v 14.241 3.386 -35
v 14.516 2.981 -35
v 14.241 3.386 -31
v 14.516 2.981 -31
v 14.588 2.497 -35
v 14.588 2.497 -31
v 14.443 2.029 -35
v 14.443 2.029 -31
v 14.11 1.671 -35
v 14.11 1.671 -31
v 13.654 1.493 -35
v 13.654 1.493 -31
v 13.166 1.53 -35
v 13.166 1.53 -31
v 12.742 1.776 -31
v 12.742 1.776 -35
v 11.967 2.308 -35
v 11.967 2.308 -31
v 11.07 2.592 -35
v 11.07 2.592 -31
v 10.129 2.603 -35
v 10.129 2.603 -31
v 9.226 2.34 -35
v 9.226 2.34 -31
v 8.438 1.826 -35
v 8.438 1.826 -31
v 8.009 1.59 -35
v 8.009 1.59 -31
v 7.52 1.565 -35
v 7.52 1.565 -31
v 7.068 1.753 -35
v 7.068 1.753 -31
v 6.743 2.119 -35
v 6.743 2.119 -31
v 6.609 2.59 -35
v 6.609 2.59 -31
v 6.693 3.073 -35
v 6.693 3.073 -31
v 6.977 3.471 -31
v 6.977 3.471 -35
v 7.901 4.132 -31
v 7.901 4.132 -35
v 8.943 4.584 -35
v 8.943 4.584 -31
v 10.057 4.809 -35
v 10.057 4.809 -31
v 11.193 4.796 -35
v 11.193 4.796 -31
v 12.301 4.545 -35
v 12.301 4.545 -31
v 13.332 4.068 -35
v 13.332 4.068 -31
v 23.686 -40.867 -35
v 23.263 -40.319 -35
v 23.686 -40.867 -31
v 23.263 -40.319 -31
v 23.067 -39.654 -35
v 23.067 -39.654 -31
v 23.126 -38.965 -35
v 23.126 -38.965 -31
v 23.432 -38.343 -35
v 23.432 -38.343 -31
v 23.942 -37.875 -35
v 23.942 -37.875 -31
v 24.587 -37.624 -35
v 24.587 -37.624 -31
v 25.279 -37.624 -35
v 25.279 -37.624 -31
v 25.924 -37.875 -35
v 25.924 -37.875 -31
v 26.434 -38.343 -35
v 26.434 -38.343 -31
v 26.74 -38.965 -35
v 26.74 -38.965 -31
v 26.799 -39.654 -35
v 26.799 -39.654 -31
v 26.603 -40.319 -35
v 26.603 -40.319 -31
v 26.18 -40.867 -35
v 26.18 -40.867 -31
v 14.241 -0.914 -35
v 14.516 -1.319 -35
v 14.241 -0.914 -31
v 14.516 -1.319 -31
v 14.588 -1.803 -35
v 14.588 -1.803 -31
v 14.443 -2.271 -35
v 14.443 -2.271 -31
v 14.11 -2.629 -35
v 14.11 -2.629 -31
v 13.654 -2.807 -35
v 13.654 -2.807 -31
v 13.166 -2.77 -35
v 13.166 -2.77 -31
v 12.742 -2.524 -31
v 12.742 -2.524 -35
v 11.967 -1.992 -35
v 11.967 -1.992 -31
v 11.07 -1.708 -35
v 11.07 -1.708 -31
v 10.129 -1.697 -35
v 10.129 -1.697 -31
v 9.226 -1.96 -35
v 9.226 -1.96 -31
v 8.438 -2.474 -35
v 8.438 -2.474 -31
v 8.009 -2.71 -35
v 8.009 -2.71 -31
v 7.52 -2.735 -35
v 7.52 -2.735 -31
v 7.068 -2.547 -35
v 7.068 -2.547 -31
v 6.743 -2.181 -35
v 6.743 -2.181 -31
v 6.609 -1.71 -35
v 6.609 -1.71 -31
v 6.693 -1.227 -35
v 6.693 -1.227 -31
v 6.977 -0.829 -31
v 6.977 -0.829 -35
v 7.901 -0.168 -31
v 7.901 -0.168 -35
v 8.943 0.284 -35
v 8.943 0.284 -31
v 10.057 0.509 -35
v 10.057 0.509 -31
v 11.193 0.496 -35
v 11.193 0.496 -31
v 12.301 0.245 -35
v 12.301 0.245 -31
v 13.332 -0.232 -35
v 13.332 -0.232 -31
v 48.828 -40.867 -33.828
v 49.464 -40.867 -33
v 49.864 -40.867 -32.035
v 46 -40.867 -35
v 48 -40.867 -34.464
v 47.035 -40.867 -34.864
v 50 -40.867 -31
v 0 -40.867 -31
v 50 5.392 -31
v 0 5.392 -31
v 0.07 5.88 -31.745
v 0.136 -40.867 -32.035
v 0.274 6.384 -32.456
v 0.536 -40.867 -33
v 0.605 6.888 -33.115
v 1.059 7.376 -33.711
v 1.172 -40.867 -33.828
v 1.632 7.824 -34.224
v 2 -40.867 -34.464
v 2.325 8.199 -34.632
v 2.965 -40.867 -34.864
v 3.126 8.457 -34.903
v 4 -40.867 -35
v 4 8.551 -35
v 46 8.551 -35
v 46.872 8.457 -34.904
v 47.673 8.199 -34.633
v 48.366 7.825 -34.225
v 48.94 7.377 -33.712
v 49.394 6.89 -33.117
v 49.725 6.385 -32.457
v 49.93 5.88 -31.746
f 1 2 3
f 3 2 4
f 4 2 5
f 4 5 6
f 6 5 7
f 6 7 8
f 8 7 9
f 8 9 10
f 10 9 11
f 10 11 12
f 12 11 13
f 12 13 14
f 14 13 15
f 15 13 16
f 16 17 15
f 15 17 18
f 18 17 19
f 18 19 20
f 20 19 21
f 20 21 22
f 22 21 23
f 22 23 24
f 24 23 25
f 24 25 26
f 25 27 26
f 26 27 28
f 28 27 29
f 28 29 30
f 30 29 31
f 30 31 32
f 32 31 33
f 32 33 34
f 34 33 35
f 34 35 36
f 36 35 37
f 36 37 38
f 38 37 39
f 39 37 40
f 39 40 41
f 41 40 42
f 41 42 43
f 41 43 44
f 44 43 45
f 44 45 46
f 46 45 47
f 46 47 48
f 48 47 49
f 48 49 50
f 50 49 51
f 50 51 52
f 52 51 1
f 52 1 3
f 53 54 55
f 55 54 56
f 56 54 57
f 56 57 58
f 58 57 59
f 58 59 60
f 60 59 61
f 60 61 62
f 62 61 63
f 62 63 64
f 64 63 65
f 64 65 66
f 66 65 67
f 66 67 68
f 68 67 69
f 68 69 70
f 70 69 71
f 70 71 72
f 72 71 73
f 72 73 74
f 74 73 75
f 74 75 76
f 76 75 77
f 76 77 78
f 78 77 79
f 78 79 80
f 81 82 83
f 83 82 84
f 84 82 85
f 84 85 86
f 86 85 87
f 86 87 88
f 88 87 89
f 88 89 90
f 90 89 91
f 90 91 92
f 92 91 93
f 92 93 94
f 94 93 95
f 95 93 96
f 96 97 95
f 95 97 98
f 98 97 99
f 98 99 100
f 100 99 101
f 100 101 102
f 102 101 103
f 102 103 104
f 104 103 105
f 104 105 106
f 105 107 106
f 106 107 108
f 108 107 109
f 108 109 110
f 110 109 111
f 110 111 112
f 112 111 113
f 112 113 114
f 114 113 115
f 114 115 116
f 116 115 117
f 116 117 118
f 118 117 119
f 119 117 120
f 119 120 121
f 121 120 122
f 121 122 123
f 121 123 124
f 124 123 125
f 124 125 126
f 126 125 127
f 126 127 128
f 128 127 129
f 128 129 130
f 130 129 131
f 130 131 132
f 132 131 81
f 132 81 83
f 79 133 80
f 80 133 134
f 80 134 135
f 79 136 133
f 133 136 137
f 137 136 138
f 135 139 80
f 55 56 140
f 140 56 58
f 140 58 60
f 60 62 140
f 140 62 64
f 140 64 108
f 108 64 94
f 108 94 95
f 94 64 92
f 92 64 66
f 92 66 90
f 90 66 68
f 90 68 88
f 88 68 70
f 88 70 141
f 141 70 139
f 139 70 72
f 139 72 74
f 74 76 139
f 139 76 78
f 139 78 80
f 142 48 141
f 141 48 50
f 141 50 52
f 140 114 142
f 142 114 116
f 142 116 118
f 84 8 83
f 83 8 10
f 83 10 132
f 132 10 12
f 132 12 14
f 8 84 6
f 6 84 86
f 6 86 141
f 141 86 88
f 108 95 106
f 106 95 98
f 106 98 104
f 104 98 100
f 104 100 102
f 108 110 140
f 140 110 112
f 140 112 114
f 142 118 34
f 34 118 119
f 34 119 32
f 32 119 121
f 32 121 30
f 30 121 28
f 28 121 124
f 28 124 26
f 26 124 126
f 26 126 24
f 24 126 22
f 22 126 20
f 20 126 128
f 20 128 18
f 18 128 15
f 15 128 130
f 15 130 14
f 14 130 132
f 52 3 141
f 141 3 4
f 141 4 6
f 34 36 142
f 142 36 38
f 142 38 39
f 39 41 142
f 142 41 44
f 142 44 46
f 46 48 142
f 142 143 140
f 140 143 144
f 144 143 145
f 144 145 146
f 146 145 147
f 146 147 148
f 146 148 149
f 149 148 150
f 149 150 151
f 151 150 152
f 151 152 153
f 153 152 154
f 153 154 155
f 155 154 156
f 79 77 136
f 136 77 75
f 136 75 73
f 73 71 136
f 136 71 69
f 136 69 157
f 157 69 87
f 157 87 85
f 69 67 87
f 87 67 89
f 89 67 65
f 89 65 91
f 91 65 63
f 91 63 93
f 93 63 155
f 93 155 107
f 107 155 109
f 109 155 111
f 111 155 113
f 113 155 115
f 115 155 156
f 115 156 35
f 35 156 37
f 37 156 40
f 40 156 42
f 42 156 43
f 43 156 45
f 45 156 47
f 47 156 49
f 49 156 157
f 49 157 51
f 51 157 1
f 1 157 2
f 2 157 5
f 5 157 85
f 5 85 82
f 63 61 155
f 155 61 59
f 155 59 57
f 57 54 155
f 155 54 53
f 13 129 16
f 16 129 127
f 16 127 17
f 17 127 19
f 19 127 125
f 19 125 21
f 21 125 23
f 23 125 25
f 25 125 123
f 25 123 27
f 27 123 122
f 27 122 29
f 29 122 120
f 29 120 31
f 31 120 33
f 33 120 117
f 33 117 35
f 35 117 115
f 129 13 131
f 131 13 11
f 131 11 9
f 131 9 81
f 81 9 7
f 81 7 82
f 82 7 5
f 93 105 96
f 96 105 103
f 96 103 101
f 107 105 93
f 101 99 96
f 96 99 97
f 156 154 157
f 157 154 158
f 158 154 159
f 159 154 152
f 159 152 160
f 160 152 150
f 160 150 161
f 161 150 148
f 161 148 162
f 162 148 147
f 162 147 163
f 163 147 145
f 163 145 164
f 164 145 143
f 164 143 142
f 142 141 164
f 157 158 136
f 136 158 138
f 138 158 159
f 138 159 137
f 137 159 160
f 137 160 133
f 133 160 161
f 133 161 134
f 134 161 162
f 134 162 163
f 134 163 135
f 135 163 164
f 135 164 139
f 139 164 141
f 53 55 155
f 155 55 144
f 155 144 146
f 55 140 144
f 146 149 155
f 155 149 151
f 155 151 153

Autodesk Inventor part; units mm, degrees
ref_plane "YZ Plane" through (0, 0, 0) normal (1, 0, 0) x (0, 1, 0)
ref_plane "XZ Plane" through (0, 0, 0) normal (0, 1, 0) x (-1, 0, 0)
ref_plane "XY Plane" through (0, 0, 0) normal (0, 0, 1) x (1, 0, 0)
sketch "Sketch2" plane through (0, 0, 0) normal (1, 0, 0) x (0, 1, 0)
  line L0 (43.74, 0) -> (-43.74, 0) construction
  line L1 (0, 65.172) -> (0, -65.172) construction
  spline S0 degree 3 poles (-5.8666, 35) (13.8832, 21.2522) (-10.0462, -16.0043) (8.551, -35) knots 1 1 1 1 2 2 2 2
  line L2 (-5.8666, 35) -> (13.8832, 21.2522) construction
  line L3 (13.8832, 21.2522) -> (-10.0462, -16.0043) construction
  line L4 (-10.0462, -16.0043) -> (8.551, -35) construction
  line L5 (-5.8666, 35) -> (-40.8666, 35)
  line L6 (-1.7165, 31) -> (-40.8666, 31)
  line L7 (-40.8666, 35) -> (-40.8666, 31)
  line L8 (8.551, -35) -> (-40.8666, -35)
  line L9 (-40.8666, -35) -> (-40.8666, -31)
  line L10 (-40.8666, -31) -> (5.392, -31)
  point P0 (0, 0)
  point P1 (0, 0)
  point P2 (0, 0)
  point P3 (0, 0)
  point P4 (0, 0)
  dimension "d0" = 35
  dimension "d1" = 4
  dimension "d2" = 4
extrude "Extrusion1" add sketch "Sketch2" along normal blind 50 contours S0 L8 L9 L10
fillet "Fillet1" radius 4 2 edges at (50, -16.1578, -35) (0, -16.1578, -35)
sketch "Sketch3" plane through (46, 8.551, -35) normal (0, 0, -1) x (-1, 0, 0)
  circle A0 centre (21.067, -48.0176) radius 1.875
  line L0 (42, -49.4176) -> (0, -49.4176) projected
  arc A1 (38.2925, -5.9026) -> (32.5085, -5.9701) centre (35.4376, -9.1181) ccw construction
  arc A2 (39.0228, -5.08) -> (31.7591, -5.1648) centre (35.4376, -9.1181) ccw
  arc A3 (37.5622, -6.7252) -> (33.2578, -6.7754) centre (35.4376, -9.1181) ccw
  arc A4 (37.5622, -6.7252) -> (39.0228, -5.08) centre (38.2925, -5.9026) ccw
  arc A5 (31.7591, -5.1648) -> (33.2578, -6.7754) centre (32.5085, -5.9701) ccw
  arc A6 (38.2925, -10.2026) -> (32.5085, -10.2701) centre (35.4376, -13.4181) ccw construction
  arc A7 (39.0228, -9.38) -> (31.7591, -9.4648) centre (35.4376, -13.4181) ccw
  arc A8 (37.5622, -11.0252) -> (33.2578, -11.0754) centre (35.4376, -13.4181) ccw
  arc A9 (37.5622, -11.0252) -> (39.0228, -9.38) centre (38.2925, -10.2026) ccw
  arc A10 (31.7591, -9.4648) -> (33.2578, -11.0754) centre (32.5085, -10.2701) ccw
  line L1 (35.4376, -14.6833) -> (35.4376, -1.9908) construction
  point P0 (46, -8.551)
  dimension "d6" = 3.75
  dimension "d7" = 1.4
  dimension "d10" = 4.3
  dimension "d11" = 4.3
  dimension "d12" = 3.2
  dimension "d13" = 3.2
  dimension "d14" = 4.3
extrude "Extrusion2" cut sketch "Sketch3" against normal blind 4
equation "\"d11\" = d10"
equation "\"d13\" = d12"
equation "\"d14\" = d11"
properties part number "Case Back"
